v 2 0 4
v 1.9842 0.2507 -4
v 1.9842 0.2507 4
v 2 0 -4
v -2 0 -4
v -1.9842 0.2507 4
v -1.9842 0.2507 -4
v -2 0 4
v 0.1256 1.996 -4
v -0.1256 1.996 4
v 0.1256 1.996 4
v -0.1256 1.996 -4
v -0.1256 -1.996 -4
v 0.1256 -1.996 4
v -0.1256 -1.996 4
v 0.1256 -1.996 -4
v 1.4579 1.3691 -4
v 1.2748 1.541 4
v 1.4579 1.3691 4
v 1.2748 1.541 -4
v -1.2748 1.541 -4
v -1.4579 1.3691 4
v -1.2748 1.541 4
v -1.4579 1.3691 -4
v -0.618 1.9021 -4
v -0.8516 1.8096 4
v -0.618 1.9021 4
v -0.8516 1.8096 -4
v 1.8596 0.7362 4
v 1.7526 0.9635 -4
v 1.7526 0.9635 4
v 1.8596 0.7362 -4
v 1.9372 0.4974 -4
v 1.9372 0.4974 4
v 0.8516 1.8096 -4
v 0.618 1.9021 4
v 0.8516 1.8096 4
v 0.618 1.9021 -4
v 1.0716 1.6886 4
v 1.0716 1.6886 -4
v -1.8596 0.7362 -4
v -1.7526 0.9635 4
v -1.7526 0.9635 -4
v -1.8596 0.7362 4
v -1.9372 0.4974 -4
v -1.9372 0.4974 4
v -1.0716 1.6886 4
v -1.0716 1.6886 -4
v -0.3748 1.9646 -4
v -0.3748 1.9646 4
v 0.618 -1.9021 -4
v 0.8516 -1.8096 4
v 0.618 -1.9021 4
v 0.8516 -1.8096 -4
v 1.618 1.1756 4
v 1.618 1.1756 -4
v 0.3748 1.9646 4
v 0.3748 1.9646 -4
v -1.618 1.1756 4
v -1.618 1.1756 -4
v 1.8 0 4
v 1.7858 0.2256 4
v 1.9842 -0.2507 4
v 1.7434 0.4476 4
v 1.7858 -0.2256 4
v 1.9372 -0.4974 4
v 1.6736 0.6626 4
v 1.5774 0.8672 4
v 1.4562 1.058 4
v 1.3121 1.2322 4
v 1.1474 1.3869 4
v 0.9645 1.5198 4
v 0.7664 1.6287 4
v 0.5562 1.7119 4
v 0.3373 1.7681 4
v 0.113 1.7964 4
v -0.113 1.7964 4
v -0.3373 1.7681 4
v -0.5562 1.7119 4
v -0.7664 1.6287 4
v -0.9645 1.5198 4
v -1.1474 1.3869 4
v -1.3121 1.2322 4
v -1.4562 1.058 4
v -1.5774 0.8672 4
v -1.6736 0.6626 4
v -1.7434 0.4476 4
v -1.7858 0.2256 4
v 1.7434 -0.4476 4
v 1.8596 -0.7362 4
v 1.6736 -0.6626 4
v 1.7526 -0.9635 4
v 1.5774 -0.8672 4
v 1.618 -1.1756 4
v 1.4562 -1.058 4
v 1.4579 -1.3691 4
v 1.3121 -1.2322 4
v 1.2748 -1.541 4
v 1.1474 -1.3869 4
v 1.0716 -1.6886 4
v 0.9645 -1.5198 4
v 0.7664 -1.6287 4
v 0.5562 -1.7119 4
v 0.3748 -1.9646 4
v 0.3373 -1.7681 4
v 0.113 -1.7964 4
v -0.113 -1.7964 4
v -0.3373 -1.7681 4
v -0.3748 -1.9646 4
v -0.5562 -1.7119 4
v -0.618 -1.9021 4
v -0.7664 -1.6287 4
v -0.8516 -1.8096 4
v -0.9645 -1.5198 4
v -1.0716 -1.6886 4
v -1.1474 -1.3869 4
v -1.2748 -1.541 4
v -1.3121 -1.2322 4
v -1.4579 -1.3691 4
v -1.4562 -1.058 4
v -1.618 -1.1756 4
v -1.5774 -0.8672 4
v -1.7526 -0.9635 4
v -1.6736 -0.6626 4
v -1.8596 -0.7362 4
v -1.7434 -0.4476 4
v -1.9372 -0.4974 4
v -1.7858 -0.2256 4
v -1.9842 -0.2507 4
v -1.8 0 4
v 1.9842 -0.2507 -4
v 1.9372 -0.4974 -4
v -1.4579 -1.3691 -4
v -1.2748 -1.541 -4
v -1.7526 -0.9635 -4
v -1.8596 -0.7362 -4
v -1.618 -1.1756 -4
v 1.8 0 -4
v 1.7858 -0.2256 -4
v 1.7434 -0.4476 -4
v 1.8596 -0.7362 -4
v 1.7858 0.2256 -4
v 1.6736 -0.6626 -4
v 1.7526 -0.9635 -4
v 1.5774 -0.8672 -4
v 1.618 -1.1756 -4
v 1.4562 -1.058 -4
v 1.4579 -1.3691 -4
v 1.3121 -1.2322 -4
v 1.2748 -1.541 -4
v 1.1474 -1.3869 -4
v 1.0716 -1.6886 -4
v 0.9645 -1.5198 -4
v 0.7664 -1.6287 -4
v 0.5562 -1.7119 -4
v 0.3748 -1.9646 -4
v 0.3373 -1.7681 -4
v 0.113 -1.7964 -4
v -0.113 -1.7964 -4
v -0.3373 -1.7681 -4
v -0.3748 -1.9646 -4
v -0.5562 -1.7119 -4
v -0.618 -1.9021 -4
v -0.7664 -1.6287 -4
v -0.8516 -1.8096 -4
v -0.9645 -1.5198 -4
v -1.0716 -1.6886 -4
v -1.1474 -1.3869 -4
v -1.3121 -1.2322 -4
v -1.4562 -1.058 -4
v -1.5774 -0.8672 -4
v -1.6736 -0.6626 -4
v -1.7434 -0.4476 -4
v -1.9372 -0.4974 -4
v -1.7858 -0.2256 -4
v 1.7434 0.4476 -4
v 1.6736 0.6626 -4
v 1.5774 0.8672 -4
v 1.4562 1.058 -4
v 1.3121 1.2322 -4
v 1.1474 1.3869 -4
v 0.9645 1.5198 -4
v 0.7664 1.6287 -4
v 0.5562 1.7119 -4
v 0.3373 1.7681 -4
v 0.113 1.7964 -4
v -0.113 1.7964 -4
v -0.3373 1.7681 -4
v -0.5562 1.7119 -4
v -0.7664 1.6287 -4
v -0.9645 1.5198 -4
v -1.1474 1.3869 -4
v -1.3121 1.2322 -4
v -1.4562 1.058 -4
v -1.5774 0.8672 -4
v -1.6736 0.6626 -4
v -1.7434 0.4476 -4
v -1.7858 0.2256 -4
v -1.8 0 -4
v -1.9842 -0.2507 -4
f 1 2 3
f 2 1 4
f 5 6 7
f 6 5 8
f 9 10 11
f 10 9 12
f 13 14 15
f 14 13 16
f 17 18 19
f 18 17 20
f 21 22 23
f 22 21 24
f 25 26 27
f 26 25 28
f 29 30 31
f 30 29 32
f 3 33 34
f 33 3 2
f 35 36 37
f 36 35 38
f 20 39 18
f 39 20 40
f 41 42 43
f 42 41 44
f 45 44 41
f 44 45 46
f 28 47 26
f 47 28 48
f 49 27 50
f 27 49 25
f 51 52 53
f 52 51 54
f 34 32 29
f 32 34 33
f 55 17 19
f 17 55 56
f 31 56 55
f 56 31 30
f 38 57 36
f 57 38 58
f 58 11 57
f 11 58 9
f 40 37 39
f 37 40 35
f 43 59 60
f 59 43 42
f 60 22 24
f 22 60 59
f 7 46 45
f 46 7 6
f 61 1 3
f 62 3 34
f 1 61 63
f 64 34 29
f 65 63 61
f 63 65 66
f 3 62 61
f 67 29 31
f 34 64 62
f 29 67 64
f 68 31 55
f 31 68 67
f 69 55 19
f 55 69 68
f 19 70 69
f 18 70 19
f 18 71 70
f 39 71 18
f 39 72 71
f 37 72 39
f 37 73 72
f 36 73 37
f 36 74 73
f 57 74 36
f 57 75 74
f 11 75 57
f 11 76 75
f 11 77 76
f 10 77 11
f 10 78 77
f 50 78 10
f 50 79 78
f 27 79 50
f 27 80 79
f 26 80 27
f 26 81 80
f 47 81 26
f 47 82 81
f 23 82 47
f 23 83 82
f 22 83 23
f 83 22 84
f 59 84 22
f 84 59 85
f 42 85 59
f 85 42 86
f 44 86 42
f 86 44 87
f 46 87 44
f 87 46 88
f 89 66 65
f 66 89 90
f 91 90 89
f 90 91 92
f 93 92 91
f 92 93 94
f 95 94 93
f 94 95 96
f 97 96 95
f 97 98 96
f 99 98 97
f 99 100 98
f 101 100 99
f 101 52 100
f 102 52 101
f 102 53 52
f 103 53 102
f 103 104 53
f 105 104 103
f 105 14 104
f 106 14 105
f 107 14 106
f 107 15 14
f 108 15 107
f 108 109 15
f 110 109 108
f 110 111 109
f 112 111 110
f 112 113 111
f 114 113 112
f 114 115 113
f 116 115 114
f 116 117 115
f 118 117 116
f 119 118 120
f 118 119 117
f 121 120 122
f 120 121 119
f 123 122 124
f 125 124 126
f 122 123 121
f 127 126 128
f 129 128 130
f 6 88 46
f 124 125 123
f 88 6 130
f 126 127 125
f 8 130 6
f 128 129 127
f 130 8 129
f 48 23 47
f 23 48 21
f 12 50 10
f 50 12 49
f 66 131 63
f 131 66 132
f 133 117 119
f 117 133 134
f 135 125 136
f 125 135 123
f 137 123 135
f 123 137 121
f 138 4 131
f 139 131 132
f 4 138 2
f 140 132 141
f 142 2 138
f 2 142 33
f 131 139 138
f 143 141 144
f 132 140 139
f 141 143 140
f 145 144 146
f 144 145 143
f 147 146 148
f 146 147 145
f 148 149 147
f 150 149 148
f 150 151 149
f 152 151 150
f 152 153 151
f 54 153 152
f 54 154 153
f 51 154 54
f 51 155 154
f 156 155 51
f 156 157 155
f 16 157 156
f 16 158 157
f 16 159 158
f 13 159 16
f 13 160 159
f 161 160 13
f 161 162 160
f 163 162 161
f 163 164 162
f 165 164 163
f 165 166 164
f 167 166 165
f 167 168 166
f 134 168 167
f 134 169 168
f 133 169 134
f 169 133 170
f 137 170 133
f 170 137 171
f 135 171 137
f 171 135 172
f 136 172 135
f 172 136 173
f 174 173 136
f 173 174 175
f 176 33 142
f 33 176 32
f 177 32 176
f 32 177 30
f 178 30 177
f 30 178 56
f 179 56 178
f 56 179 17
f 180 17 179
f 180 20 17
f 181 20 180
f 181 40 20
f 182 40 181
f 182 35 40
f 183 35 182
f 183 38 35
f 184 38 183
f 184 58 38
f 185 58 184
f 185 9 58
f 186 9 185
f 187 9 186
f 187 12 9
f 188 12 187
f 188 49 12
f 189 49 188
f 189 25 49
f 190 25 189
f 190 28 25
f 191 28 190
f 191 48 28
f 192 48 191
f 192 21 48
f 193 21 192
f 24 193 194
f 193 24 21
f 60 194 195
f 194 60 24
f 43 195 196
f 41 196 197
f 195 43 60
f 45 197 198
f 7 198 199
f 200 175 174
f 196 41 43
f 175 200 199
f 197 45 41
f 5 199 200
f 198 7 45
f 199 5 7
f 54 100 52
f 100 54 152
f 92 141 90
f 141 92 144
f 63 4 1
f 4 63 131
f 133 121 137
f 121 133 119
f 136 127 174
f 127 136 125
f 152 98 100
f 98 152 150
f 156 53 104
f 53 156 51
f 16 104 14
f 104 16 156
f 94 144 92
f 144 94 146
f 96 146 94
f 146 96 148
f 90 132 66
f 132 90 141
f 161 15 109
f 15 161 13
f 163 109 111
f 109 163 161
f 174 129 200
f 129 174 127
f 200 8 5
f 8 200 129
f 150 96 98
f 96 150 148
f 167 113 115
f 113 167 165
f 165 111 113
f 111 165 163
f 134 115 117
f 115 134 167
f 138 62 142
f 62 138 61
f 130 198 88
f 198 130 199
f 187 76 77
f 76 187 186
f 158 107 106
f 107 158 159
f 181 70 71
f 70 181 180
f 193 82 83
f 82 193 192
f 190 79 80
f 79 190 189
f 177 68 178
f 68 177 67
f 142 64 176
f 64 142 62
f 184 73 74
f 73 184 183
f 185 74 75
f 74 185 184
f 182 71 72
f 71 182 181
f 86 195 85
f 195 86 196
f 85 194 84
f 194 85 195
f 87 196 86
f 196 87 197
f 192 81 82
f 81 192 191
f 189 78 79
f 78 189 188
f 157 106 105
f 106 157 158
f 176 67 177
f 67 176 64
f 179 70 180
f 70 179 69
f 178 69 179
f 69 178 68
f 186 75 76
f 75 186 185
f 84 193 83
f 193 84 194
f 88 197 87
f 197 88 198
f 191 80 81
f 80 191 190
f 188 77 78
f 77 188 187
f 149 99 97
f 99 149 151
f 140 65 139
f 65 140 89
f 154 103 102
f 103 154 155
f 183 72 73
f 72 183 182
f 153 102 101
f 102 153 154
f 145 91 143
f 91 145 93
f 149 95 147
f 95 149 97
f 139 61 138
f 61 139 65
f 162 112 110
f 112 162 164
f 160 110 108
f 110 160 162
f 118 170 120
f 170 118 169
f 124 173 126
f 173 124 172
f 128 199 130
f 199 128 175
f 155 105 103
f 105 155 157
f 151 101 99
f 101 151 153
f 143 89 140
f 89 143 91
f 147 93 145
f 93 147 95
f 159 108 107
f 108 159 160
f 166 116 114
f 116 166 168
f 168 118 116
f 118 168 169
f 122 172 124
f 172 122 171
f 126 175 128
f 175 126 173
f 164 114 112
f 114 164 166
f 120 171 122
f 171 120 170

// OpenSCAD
$fn = 50;


difference() {
	union() {
		translate(v = [0, 0, -4.0000000000]) {
			cylinder(h = 8, r = 2.0000000000);
		}
	}
	union() {
		translate(v = [0, 0, -100.0000000000]) {
			cylinder(h = 200, r = 1.8000000000);
		}
	}
}
